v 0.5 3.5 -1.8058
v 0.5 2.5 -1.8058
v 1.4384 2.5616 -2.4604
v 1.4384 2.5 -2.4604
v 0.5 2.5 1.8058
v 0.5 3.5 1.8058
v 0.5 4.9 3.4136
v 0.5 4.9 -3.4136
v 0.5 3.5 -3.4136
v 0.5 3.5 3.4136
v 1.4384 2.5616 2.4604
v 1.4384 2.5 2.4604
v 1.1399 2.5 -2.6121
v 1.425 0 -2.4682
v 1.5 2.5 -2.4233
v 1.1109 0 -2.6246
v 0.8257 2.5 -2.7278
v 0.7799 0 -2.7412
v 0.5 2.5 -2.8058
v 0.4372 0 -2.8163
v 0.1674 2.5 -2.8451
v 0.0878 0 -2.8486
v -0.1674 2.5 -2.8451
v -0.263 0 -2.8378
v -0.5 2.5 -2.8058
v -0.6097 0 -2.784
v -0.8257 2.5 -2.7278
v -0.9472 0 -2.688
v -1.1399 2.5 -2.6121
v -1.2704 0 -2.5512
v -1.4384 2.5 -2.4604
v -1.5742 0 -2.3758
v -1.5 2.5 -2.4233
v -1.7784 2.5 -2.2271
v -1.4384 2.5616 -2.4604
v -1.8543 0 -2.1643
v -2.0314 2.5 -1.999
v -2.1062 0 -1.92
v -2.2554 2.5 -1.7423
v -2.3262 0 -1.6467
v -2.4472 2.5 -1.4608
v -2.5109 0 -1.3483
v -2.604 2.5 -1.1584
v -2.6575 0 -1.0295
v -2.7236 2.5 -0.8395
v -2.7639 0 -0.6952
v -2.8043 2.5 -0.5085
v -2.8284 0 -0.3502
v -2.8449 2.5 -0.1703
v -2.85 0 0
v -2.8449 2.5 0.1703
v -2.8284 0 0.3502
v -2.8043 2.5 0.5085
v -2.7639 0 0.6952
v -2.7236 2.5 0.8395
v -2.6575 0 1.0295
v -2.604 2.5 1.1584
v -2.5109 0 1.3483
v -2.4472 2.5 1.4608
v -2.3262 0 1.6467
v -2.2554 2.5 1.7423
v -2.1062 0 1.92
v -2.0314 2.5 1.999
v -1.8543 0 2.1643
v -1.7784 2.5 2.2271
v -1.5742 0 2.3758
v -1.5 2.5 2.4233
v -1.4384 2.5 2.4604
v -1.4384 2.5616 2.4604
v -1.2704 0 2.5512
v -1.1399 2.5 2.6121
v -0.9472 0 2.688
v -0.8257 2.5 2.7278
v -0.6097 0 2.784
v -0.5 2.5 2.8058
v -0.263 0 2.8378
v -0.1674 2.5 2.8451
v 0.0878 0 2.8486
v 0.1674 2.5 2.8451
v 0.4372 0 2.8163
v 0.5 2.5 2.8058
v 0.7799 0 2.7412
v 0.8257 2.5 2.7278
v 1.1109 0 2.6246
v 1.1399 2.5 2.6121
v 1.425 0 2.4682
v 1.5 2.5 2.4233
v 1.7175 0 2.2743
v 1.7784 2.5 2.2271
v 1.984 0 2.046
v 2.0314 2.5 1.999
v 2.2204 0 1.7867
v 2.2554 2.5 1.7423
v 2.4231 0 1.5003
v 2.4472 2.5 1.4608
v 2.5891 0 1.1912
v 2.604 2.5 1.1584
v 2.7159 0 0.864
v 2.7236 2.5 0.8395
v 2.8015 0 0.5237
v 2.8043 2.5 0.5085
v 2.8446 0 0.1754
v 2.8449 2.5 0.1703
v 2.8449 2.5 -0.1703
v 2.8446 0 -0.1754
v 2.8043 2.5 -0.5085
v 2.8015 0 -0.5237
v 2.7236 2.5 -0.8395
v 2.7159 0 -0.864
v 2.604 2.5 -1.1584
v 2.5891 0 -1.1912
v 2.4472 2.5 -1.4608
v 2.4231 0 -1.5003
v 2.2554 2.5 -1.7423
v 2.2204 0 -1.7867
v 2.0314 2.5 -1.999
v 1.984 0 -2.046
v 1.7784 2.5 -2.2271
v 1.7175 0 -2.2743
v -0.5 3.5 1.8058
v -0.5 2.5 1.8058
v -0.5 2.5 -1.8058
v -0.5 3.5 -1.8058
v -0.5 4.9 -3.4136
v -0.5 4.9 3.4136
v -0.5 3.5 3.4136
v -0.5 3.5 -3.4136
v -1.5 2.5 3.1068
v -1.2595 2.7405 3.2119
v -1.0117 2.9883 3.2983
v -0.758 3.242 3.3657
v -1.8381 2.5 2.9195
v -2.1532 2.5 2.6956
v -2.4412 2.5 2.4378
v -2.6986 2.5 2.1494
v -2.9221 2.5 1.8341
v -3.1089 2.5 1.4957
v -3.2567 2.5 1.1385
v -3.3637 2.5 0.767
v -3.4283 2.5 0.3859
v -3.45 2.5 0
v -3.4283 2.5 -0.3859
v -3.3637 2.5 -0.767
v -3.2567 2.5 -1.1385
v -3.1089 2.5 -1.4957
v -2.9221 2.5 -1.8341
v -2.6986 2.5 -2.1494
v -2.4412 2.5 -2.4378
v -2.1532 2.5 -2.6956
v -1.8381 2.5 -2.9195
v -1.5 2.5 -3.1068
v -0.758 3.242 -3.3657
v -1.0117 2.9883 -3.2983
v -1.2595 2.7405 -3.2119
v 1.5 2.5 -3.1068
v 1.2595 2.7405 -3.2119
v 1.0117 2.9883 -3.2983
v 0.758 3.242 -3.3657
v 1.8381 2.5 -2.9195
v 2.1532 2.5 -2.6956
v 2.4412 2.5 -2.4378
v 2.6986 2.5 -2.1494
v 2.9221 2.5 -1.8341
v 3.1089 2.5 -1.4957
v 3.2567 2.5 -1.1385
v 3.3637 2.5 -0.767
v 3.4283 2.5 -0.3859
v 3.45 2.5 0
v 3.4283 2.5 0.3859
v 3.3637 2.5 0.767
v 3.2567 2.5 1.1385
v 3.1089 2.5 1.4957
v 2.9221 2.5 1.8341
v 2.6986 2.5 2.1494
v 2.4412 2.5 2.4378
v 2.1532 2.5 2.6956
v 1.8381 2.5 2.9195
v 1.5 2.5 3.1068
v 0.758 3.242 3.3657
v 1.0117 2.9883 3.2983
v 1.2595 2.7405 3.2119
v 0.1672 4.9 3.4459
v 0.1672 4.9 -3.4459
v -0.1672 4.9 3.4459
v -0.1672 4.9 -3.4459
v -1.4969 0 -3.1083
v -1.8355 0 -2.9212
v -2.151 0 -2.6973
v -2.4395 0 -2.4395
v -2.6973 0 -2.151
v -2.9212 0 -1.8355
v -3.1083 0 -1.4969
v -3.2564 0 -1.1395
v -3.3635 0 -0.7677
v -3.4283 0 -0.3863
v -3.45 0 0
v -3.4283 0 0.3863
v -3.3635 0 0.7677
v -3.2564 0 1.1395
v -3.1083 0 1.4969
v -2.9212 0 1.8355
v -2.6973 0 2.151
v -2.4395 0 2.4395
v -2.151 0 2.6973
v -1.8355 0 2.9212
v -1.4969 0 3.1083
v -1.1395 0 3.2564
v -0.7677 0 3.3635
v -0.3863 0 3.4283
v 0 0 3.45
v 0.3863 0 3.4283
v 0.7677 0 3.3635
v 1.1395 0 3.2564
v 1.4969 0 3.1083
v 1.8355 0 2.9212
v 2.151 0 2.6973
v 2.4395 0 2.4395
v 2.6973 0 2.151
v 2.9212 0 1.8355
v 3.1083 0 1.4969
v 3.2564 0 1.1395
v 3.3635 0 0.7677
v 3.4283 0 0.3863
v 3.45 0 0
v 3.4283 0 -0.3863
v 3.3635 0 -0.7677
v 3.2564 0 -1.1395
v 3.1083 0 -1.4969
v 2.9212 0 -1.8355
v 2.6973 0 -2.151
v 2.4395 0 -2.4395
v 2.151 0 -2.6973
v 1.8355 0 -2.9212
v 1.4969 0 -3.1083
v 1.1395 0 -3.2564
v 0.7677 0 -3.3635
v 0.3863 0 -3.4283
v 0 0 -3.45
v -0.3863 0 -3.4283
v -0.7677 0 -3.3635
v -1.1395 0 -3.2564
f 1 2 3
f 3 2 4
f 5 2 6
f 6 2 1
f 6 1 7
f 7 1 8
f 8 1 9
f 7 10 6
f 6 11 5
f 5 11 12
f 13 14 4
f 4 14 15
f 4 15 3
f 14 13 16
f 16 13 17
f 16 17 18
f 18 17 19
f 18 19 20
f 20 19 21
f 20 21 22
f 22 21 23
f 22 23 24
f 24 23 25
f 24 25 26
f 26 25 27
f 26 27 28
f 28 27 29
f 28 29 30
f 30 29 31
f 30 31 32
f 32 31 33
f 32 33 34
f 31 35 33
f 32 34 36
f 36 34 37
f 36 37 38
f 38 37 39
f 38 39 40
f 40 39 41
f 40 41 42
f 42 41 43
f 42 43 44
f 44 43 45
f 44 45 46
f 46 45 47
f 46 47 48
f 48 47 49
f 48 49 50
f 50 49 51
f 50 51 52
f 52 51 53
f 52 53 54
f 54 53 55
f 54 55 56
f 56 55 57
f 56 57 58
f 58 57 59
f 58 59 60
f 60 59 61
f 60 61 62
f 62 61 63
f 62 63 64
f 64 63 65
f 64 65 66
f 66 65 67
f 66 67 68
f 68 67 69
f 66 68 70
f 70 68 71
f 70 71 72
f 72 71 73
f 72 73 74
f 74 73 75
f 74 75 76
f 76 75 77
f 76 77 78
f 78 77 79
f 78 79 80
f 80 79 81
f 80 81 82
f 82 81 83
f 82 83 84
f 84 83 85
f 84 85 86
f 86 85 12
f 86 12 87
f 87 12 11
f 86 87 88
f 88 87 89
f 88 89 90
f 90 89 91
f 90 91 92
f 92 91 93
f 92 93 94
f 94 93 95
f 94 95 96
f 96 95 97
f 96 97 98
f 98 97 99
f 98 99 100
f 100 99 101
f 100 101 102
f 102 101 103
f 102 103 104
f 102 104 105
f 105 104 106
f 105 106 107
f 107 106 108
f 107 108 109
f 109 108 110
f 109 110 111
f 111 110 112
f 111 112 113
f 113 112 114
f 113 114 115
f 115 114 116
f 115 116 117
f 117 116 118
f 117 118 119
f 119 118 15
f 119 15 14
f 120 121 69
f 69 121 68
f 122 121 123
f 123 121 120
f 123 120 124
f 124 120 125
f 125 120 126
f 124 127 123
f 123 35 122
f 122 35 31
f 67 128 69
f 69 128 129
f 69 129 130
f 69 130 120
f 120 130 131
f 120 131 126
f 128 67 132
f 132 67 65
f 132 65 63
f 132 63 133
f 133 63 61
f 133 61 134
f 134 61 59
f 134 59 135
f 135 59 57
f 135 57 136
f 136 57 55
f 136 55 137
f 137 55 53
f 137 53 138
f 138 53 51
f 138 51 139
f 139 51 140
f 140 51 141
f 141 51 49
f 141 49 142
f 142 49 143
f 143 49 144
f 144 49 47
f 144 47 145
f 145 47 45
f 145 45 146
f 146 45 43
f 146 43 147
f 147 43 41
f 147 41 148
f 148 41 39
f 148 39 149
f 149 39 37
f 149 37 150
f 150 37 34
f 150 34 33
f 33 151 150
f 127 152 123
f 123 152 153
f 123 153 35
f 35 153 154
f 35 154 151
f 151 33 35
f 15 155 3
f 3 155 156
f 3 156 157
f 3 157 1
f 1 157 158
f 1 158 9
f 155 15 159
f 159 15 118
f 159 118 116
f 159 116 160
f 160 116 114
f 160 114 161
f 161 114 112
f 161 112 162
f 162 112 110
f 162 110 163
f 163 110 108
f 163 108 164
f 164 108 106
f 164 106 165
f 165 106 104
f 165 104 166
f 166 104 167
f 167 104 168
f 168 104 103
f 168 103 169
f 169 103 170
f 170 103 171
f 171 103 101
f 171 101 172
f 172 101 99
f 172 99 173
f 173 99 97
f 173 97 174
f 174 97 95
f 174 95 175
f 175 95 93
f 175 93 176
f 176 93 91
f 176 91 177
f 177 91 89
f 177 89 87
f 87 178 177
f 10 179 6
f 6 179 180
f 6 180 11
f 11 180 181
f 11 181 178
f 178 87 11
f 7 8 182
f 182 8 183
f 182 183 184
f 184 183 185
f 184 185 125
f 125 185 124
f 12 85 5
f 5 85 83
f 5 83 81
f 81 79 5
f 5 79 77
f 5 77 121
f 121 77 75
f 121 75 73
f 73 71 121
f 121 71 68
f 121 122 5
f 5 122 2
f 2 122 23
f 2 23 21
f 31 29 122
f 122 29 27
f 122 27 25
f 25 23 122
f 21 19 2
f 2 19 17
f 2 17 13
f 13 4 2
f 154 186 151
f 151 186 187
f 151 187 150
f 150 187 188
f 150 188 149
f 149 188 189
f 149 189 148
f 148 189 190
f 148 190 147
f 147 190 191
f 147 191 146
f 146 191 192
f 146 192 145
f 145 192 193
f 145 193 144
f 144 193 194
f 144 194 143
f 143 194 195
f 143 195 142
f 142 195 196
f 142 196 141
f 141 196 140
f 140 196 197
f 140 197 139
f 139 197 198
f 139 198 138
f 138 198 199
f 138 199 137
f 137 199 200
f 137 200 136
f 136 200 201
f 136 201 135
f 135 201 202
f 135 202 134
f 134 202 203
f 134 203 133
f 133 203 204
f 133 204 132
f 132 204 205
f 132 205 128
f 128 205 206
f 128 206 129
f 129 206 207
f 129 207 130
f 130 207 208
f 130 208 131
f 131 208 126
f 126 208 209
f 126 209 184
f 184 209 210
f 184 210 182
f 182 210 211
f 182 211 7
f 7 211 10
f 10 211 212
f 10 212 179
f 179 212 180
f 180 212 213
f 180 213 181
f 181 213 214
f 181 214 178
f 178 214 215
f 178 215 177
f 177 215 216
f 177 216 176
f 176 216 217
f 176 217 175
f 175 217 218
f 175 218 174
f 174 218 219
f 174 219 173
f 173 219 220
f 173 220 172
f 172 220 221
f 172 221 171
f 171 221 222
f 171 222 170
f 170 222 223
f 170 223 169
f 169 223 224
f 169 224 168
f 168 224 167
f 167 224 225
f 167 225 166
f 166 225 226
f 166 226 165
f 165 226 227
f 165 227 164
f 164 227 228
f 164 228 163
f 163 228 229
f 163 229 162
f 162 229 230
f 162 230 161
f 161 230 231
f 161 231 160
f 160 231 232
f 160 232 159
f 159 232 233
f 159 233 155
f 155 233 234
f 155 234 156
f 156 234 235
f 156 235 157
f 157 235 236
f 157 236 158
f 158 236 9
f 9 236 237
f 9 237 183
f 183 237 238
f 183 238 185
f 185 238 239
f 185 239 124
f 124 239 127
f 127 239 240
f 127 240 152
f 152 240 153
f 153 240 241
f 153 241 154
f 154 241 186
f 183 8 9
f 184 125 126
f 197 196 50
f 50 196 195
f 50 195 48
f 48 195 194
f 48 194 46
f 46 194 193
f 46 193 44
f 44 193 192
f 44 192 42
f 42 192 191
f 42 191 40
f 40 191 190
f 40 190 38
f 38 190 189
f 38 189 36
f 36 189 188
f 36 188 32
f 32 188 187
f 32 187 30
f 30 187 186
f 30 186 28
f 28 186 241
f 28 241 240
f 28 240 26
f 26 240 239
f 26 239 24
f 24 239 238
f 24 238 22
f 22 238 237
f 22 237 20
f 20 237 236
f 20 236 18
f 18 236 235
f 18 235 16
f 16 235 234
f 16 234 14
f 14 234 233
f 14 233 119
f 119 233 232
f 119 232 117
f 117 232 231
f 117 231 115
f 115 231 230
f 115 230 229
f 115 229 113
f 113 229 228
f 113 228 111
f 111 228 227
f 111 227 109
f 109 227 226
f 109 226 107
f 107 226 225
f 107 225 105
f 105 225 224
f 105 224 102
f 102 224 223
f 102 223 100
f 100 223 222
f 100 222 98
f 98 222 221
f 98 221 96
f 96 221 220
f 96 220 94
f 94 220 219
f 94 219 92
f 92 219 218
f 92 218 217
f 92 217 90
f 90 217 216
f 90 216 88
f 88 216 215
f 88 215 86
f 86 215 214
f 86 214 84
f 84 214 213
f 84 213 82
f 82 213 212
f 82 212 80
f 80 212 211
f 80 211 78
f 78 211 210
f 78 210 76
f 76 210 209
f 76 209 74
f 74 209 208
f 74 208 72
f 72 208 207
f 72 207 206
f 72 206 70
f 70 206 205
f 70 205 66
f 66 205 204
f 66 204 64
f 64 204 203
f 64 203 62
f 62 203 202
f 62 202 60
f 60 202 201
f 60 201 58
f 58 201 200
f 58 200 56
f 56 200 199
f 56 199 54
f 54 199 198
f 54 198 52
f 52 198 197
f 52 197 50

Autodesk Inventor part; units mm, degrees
ref_plane "YZ Plane" through (0, 0, 0) normal (1, 0, 0) x (0, 1, 0)
ref_plane "XZ Plane" through (0, 0, 0) normal (0, 1, 0) x (-1, 0, 0)
ref_plane "XY Plane" through (0, 0, 0) normal (0, 0, 1) x (1, 0, 0)
sketch "스케치1" plane through (0, 0, 0) normal (0, 1, 0) x (-1, 0, 0)
  circle A0 centre (0, 0) radius 2.85
  circle A1 centre (0, 0) radius 3.45
  dimension "d0" = 5.7
  dimension "d1" = 6.9
extrude "돌출1" add sketch "스케치1" along normal blind 2.5
sketch "스케치2" plane through (0, 2.5, 0) normal (0, 1, 0) x (1, 0, 0)
  circle A0 centre (0, 0) radius 3.45 projected
  circle A1 centre (0, 0) radius 3.45 projected
  line L0 (0.5, 3.4136) -> (-0.5, 3.4136)
  line L1 (-0.5, 3.4136) -> (-0.5, -3.4136)
  line L2 (-0.5, -3.4136) -> (0.5, -3.4136)
  line L3 (0.5, -3.4136) -> (0.5, 3.4136)
  line L4 (0.5, 3.4136) -> (-0.5, -3.4136) construction
  line L5 (-0.5, 3.4136) -> (0.5, -3.4136) construction
  point P0 (-0.5, -3.4136)
  point P1 (0.5, -3.4136)
  point P2 (0.5, 3.4136)
  point P3 (-0.5, 3.4136)
  dimension "d4" = 1
extrude "돌출2" add sketch "스케치2" along normal blind 2.4 contours L0 A0 | L3 L2 L1 L0 | A0 L2
chamfer "모따기1" distance 1 angle 45 4 edges at (0.5, 2.5, 3.1097) (0.5, 2.5, -3.1097) (-0.5, 2.5, -3.1097) (-0.5, 2.5, 3.1097)
chamfer "모따기2" distance 1 angle 45 4 edges at (-0.5, 3, -2.8058) (-0.5, 3, 2.8058) (0.5, 3, 2.8058) (0.5, 3, -2.8058)
properties part number "terminalcap_4.1mm_addon"
